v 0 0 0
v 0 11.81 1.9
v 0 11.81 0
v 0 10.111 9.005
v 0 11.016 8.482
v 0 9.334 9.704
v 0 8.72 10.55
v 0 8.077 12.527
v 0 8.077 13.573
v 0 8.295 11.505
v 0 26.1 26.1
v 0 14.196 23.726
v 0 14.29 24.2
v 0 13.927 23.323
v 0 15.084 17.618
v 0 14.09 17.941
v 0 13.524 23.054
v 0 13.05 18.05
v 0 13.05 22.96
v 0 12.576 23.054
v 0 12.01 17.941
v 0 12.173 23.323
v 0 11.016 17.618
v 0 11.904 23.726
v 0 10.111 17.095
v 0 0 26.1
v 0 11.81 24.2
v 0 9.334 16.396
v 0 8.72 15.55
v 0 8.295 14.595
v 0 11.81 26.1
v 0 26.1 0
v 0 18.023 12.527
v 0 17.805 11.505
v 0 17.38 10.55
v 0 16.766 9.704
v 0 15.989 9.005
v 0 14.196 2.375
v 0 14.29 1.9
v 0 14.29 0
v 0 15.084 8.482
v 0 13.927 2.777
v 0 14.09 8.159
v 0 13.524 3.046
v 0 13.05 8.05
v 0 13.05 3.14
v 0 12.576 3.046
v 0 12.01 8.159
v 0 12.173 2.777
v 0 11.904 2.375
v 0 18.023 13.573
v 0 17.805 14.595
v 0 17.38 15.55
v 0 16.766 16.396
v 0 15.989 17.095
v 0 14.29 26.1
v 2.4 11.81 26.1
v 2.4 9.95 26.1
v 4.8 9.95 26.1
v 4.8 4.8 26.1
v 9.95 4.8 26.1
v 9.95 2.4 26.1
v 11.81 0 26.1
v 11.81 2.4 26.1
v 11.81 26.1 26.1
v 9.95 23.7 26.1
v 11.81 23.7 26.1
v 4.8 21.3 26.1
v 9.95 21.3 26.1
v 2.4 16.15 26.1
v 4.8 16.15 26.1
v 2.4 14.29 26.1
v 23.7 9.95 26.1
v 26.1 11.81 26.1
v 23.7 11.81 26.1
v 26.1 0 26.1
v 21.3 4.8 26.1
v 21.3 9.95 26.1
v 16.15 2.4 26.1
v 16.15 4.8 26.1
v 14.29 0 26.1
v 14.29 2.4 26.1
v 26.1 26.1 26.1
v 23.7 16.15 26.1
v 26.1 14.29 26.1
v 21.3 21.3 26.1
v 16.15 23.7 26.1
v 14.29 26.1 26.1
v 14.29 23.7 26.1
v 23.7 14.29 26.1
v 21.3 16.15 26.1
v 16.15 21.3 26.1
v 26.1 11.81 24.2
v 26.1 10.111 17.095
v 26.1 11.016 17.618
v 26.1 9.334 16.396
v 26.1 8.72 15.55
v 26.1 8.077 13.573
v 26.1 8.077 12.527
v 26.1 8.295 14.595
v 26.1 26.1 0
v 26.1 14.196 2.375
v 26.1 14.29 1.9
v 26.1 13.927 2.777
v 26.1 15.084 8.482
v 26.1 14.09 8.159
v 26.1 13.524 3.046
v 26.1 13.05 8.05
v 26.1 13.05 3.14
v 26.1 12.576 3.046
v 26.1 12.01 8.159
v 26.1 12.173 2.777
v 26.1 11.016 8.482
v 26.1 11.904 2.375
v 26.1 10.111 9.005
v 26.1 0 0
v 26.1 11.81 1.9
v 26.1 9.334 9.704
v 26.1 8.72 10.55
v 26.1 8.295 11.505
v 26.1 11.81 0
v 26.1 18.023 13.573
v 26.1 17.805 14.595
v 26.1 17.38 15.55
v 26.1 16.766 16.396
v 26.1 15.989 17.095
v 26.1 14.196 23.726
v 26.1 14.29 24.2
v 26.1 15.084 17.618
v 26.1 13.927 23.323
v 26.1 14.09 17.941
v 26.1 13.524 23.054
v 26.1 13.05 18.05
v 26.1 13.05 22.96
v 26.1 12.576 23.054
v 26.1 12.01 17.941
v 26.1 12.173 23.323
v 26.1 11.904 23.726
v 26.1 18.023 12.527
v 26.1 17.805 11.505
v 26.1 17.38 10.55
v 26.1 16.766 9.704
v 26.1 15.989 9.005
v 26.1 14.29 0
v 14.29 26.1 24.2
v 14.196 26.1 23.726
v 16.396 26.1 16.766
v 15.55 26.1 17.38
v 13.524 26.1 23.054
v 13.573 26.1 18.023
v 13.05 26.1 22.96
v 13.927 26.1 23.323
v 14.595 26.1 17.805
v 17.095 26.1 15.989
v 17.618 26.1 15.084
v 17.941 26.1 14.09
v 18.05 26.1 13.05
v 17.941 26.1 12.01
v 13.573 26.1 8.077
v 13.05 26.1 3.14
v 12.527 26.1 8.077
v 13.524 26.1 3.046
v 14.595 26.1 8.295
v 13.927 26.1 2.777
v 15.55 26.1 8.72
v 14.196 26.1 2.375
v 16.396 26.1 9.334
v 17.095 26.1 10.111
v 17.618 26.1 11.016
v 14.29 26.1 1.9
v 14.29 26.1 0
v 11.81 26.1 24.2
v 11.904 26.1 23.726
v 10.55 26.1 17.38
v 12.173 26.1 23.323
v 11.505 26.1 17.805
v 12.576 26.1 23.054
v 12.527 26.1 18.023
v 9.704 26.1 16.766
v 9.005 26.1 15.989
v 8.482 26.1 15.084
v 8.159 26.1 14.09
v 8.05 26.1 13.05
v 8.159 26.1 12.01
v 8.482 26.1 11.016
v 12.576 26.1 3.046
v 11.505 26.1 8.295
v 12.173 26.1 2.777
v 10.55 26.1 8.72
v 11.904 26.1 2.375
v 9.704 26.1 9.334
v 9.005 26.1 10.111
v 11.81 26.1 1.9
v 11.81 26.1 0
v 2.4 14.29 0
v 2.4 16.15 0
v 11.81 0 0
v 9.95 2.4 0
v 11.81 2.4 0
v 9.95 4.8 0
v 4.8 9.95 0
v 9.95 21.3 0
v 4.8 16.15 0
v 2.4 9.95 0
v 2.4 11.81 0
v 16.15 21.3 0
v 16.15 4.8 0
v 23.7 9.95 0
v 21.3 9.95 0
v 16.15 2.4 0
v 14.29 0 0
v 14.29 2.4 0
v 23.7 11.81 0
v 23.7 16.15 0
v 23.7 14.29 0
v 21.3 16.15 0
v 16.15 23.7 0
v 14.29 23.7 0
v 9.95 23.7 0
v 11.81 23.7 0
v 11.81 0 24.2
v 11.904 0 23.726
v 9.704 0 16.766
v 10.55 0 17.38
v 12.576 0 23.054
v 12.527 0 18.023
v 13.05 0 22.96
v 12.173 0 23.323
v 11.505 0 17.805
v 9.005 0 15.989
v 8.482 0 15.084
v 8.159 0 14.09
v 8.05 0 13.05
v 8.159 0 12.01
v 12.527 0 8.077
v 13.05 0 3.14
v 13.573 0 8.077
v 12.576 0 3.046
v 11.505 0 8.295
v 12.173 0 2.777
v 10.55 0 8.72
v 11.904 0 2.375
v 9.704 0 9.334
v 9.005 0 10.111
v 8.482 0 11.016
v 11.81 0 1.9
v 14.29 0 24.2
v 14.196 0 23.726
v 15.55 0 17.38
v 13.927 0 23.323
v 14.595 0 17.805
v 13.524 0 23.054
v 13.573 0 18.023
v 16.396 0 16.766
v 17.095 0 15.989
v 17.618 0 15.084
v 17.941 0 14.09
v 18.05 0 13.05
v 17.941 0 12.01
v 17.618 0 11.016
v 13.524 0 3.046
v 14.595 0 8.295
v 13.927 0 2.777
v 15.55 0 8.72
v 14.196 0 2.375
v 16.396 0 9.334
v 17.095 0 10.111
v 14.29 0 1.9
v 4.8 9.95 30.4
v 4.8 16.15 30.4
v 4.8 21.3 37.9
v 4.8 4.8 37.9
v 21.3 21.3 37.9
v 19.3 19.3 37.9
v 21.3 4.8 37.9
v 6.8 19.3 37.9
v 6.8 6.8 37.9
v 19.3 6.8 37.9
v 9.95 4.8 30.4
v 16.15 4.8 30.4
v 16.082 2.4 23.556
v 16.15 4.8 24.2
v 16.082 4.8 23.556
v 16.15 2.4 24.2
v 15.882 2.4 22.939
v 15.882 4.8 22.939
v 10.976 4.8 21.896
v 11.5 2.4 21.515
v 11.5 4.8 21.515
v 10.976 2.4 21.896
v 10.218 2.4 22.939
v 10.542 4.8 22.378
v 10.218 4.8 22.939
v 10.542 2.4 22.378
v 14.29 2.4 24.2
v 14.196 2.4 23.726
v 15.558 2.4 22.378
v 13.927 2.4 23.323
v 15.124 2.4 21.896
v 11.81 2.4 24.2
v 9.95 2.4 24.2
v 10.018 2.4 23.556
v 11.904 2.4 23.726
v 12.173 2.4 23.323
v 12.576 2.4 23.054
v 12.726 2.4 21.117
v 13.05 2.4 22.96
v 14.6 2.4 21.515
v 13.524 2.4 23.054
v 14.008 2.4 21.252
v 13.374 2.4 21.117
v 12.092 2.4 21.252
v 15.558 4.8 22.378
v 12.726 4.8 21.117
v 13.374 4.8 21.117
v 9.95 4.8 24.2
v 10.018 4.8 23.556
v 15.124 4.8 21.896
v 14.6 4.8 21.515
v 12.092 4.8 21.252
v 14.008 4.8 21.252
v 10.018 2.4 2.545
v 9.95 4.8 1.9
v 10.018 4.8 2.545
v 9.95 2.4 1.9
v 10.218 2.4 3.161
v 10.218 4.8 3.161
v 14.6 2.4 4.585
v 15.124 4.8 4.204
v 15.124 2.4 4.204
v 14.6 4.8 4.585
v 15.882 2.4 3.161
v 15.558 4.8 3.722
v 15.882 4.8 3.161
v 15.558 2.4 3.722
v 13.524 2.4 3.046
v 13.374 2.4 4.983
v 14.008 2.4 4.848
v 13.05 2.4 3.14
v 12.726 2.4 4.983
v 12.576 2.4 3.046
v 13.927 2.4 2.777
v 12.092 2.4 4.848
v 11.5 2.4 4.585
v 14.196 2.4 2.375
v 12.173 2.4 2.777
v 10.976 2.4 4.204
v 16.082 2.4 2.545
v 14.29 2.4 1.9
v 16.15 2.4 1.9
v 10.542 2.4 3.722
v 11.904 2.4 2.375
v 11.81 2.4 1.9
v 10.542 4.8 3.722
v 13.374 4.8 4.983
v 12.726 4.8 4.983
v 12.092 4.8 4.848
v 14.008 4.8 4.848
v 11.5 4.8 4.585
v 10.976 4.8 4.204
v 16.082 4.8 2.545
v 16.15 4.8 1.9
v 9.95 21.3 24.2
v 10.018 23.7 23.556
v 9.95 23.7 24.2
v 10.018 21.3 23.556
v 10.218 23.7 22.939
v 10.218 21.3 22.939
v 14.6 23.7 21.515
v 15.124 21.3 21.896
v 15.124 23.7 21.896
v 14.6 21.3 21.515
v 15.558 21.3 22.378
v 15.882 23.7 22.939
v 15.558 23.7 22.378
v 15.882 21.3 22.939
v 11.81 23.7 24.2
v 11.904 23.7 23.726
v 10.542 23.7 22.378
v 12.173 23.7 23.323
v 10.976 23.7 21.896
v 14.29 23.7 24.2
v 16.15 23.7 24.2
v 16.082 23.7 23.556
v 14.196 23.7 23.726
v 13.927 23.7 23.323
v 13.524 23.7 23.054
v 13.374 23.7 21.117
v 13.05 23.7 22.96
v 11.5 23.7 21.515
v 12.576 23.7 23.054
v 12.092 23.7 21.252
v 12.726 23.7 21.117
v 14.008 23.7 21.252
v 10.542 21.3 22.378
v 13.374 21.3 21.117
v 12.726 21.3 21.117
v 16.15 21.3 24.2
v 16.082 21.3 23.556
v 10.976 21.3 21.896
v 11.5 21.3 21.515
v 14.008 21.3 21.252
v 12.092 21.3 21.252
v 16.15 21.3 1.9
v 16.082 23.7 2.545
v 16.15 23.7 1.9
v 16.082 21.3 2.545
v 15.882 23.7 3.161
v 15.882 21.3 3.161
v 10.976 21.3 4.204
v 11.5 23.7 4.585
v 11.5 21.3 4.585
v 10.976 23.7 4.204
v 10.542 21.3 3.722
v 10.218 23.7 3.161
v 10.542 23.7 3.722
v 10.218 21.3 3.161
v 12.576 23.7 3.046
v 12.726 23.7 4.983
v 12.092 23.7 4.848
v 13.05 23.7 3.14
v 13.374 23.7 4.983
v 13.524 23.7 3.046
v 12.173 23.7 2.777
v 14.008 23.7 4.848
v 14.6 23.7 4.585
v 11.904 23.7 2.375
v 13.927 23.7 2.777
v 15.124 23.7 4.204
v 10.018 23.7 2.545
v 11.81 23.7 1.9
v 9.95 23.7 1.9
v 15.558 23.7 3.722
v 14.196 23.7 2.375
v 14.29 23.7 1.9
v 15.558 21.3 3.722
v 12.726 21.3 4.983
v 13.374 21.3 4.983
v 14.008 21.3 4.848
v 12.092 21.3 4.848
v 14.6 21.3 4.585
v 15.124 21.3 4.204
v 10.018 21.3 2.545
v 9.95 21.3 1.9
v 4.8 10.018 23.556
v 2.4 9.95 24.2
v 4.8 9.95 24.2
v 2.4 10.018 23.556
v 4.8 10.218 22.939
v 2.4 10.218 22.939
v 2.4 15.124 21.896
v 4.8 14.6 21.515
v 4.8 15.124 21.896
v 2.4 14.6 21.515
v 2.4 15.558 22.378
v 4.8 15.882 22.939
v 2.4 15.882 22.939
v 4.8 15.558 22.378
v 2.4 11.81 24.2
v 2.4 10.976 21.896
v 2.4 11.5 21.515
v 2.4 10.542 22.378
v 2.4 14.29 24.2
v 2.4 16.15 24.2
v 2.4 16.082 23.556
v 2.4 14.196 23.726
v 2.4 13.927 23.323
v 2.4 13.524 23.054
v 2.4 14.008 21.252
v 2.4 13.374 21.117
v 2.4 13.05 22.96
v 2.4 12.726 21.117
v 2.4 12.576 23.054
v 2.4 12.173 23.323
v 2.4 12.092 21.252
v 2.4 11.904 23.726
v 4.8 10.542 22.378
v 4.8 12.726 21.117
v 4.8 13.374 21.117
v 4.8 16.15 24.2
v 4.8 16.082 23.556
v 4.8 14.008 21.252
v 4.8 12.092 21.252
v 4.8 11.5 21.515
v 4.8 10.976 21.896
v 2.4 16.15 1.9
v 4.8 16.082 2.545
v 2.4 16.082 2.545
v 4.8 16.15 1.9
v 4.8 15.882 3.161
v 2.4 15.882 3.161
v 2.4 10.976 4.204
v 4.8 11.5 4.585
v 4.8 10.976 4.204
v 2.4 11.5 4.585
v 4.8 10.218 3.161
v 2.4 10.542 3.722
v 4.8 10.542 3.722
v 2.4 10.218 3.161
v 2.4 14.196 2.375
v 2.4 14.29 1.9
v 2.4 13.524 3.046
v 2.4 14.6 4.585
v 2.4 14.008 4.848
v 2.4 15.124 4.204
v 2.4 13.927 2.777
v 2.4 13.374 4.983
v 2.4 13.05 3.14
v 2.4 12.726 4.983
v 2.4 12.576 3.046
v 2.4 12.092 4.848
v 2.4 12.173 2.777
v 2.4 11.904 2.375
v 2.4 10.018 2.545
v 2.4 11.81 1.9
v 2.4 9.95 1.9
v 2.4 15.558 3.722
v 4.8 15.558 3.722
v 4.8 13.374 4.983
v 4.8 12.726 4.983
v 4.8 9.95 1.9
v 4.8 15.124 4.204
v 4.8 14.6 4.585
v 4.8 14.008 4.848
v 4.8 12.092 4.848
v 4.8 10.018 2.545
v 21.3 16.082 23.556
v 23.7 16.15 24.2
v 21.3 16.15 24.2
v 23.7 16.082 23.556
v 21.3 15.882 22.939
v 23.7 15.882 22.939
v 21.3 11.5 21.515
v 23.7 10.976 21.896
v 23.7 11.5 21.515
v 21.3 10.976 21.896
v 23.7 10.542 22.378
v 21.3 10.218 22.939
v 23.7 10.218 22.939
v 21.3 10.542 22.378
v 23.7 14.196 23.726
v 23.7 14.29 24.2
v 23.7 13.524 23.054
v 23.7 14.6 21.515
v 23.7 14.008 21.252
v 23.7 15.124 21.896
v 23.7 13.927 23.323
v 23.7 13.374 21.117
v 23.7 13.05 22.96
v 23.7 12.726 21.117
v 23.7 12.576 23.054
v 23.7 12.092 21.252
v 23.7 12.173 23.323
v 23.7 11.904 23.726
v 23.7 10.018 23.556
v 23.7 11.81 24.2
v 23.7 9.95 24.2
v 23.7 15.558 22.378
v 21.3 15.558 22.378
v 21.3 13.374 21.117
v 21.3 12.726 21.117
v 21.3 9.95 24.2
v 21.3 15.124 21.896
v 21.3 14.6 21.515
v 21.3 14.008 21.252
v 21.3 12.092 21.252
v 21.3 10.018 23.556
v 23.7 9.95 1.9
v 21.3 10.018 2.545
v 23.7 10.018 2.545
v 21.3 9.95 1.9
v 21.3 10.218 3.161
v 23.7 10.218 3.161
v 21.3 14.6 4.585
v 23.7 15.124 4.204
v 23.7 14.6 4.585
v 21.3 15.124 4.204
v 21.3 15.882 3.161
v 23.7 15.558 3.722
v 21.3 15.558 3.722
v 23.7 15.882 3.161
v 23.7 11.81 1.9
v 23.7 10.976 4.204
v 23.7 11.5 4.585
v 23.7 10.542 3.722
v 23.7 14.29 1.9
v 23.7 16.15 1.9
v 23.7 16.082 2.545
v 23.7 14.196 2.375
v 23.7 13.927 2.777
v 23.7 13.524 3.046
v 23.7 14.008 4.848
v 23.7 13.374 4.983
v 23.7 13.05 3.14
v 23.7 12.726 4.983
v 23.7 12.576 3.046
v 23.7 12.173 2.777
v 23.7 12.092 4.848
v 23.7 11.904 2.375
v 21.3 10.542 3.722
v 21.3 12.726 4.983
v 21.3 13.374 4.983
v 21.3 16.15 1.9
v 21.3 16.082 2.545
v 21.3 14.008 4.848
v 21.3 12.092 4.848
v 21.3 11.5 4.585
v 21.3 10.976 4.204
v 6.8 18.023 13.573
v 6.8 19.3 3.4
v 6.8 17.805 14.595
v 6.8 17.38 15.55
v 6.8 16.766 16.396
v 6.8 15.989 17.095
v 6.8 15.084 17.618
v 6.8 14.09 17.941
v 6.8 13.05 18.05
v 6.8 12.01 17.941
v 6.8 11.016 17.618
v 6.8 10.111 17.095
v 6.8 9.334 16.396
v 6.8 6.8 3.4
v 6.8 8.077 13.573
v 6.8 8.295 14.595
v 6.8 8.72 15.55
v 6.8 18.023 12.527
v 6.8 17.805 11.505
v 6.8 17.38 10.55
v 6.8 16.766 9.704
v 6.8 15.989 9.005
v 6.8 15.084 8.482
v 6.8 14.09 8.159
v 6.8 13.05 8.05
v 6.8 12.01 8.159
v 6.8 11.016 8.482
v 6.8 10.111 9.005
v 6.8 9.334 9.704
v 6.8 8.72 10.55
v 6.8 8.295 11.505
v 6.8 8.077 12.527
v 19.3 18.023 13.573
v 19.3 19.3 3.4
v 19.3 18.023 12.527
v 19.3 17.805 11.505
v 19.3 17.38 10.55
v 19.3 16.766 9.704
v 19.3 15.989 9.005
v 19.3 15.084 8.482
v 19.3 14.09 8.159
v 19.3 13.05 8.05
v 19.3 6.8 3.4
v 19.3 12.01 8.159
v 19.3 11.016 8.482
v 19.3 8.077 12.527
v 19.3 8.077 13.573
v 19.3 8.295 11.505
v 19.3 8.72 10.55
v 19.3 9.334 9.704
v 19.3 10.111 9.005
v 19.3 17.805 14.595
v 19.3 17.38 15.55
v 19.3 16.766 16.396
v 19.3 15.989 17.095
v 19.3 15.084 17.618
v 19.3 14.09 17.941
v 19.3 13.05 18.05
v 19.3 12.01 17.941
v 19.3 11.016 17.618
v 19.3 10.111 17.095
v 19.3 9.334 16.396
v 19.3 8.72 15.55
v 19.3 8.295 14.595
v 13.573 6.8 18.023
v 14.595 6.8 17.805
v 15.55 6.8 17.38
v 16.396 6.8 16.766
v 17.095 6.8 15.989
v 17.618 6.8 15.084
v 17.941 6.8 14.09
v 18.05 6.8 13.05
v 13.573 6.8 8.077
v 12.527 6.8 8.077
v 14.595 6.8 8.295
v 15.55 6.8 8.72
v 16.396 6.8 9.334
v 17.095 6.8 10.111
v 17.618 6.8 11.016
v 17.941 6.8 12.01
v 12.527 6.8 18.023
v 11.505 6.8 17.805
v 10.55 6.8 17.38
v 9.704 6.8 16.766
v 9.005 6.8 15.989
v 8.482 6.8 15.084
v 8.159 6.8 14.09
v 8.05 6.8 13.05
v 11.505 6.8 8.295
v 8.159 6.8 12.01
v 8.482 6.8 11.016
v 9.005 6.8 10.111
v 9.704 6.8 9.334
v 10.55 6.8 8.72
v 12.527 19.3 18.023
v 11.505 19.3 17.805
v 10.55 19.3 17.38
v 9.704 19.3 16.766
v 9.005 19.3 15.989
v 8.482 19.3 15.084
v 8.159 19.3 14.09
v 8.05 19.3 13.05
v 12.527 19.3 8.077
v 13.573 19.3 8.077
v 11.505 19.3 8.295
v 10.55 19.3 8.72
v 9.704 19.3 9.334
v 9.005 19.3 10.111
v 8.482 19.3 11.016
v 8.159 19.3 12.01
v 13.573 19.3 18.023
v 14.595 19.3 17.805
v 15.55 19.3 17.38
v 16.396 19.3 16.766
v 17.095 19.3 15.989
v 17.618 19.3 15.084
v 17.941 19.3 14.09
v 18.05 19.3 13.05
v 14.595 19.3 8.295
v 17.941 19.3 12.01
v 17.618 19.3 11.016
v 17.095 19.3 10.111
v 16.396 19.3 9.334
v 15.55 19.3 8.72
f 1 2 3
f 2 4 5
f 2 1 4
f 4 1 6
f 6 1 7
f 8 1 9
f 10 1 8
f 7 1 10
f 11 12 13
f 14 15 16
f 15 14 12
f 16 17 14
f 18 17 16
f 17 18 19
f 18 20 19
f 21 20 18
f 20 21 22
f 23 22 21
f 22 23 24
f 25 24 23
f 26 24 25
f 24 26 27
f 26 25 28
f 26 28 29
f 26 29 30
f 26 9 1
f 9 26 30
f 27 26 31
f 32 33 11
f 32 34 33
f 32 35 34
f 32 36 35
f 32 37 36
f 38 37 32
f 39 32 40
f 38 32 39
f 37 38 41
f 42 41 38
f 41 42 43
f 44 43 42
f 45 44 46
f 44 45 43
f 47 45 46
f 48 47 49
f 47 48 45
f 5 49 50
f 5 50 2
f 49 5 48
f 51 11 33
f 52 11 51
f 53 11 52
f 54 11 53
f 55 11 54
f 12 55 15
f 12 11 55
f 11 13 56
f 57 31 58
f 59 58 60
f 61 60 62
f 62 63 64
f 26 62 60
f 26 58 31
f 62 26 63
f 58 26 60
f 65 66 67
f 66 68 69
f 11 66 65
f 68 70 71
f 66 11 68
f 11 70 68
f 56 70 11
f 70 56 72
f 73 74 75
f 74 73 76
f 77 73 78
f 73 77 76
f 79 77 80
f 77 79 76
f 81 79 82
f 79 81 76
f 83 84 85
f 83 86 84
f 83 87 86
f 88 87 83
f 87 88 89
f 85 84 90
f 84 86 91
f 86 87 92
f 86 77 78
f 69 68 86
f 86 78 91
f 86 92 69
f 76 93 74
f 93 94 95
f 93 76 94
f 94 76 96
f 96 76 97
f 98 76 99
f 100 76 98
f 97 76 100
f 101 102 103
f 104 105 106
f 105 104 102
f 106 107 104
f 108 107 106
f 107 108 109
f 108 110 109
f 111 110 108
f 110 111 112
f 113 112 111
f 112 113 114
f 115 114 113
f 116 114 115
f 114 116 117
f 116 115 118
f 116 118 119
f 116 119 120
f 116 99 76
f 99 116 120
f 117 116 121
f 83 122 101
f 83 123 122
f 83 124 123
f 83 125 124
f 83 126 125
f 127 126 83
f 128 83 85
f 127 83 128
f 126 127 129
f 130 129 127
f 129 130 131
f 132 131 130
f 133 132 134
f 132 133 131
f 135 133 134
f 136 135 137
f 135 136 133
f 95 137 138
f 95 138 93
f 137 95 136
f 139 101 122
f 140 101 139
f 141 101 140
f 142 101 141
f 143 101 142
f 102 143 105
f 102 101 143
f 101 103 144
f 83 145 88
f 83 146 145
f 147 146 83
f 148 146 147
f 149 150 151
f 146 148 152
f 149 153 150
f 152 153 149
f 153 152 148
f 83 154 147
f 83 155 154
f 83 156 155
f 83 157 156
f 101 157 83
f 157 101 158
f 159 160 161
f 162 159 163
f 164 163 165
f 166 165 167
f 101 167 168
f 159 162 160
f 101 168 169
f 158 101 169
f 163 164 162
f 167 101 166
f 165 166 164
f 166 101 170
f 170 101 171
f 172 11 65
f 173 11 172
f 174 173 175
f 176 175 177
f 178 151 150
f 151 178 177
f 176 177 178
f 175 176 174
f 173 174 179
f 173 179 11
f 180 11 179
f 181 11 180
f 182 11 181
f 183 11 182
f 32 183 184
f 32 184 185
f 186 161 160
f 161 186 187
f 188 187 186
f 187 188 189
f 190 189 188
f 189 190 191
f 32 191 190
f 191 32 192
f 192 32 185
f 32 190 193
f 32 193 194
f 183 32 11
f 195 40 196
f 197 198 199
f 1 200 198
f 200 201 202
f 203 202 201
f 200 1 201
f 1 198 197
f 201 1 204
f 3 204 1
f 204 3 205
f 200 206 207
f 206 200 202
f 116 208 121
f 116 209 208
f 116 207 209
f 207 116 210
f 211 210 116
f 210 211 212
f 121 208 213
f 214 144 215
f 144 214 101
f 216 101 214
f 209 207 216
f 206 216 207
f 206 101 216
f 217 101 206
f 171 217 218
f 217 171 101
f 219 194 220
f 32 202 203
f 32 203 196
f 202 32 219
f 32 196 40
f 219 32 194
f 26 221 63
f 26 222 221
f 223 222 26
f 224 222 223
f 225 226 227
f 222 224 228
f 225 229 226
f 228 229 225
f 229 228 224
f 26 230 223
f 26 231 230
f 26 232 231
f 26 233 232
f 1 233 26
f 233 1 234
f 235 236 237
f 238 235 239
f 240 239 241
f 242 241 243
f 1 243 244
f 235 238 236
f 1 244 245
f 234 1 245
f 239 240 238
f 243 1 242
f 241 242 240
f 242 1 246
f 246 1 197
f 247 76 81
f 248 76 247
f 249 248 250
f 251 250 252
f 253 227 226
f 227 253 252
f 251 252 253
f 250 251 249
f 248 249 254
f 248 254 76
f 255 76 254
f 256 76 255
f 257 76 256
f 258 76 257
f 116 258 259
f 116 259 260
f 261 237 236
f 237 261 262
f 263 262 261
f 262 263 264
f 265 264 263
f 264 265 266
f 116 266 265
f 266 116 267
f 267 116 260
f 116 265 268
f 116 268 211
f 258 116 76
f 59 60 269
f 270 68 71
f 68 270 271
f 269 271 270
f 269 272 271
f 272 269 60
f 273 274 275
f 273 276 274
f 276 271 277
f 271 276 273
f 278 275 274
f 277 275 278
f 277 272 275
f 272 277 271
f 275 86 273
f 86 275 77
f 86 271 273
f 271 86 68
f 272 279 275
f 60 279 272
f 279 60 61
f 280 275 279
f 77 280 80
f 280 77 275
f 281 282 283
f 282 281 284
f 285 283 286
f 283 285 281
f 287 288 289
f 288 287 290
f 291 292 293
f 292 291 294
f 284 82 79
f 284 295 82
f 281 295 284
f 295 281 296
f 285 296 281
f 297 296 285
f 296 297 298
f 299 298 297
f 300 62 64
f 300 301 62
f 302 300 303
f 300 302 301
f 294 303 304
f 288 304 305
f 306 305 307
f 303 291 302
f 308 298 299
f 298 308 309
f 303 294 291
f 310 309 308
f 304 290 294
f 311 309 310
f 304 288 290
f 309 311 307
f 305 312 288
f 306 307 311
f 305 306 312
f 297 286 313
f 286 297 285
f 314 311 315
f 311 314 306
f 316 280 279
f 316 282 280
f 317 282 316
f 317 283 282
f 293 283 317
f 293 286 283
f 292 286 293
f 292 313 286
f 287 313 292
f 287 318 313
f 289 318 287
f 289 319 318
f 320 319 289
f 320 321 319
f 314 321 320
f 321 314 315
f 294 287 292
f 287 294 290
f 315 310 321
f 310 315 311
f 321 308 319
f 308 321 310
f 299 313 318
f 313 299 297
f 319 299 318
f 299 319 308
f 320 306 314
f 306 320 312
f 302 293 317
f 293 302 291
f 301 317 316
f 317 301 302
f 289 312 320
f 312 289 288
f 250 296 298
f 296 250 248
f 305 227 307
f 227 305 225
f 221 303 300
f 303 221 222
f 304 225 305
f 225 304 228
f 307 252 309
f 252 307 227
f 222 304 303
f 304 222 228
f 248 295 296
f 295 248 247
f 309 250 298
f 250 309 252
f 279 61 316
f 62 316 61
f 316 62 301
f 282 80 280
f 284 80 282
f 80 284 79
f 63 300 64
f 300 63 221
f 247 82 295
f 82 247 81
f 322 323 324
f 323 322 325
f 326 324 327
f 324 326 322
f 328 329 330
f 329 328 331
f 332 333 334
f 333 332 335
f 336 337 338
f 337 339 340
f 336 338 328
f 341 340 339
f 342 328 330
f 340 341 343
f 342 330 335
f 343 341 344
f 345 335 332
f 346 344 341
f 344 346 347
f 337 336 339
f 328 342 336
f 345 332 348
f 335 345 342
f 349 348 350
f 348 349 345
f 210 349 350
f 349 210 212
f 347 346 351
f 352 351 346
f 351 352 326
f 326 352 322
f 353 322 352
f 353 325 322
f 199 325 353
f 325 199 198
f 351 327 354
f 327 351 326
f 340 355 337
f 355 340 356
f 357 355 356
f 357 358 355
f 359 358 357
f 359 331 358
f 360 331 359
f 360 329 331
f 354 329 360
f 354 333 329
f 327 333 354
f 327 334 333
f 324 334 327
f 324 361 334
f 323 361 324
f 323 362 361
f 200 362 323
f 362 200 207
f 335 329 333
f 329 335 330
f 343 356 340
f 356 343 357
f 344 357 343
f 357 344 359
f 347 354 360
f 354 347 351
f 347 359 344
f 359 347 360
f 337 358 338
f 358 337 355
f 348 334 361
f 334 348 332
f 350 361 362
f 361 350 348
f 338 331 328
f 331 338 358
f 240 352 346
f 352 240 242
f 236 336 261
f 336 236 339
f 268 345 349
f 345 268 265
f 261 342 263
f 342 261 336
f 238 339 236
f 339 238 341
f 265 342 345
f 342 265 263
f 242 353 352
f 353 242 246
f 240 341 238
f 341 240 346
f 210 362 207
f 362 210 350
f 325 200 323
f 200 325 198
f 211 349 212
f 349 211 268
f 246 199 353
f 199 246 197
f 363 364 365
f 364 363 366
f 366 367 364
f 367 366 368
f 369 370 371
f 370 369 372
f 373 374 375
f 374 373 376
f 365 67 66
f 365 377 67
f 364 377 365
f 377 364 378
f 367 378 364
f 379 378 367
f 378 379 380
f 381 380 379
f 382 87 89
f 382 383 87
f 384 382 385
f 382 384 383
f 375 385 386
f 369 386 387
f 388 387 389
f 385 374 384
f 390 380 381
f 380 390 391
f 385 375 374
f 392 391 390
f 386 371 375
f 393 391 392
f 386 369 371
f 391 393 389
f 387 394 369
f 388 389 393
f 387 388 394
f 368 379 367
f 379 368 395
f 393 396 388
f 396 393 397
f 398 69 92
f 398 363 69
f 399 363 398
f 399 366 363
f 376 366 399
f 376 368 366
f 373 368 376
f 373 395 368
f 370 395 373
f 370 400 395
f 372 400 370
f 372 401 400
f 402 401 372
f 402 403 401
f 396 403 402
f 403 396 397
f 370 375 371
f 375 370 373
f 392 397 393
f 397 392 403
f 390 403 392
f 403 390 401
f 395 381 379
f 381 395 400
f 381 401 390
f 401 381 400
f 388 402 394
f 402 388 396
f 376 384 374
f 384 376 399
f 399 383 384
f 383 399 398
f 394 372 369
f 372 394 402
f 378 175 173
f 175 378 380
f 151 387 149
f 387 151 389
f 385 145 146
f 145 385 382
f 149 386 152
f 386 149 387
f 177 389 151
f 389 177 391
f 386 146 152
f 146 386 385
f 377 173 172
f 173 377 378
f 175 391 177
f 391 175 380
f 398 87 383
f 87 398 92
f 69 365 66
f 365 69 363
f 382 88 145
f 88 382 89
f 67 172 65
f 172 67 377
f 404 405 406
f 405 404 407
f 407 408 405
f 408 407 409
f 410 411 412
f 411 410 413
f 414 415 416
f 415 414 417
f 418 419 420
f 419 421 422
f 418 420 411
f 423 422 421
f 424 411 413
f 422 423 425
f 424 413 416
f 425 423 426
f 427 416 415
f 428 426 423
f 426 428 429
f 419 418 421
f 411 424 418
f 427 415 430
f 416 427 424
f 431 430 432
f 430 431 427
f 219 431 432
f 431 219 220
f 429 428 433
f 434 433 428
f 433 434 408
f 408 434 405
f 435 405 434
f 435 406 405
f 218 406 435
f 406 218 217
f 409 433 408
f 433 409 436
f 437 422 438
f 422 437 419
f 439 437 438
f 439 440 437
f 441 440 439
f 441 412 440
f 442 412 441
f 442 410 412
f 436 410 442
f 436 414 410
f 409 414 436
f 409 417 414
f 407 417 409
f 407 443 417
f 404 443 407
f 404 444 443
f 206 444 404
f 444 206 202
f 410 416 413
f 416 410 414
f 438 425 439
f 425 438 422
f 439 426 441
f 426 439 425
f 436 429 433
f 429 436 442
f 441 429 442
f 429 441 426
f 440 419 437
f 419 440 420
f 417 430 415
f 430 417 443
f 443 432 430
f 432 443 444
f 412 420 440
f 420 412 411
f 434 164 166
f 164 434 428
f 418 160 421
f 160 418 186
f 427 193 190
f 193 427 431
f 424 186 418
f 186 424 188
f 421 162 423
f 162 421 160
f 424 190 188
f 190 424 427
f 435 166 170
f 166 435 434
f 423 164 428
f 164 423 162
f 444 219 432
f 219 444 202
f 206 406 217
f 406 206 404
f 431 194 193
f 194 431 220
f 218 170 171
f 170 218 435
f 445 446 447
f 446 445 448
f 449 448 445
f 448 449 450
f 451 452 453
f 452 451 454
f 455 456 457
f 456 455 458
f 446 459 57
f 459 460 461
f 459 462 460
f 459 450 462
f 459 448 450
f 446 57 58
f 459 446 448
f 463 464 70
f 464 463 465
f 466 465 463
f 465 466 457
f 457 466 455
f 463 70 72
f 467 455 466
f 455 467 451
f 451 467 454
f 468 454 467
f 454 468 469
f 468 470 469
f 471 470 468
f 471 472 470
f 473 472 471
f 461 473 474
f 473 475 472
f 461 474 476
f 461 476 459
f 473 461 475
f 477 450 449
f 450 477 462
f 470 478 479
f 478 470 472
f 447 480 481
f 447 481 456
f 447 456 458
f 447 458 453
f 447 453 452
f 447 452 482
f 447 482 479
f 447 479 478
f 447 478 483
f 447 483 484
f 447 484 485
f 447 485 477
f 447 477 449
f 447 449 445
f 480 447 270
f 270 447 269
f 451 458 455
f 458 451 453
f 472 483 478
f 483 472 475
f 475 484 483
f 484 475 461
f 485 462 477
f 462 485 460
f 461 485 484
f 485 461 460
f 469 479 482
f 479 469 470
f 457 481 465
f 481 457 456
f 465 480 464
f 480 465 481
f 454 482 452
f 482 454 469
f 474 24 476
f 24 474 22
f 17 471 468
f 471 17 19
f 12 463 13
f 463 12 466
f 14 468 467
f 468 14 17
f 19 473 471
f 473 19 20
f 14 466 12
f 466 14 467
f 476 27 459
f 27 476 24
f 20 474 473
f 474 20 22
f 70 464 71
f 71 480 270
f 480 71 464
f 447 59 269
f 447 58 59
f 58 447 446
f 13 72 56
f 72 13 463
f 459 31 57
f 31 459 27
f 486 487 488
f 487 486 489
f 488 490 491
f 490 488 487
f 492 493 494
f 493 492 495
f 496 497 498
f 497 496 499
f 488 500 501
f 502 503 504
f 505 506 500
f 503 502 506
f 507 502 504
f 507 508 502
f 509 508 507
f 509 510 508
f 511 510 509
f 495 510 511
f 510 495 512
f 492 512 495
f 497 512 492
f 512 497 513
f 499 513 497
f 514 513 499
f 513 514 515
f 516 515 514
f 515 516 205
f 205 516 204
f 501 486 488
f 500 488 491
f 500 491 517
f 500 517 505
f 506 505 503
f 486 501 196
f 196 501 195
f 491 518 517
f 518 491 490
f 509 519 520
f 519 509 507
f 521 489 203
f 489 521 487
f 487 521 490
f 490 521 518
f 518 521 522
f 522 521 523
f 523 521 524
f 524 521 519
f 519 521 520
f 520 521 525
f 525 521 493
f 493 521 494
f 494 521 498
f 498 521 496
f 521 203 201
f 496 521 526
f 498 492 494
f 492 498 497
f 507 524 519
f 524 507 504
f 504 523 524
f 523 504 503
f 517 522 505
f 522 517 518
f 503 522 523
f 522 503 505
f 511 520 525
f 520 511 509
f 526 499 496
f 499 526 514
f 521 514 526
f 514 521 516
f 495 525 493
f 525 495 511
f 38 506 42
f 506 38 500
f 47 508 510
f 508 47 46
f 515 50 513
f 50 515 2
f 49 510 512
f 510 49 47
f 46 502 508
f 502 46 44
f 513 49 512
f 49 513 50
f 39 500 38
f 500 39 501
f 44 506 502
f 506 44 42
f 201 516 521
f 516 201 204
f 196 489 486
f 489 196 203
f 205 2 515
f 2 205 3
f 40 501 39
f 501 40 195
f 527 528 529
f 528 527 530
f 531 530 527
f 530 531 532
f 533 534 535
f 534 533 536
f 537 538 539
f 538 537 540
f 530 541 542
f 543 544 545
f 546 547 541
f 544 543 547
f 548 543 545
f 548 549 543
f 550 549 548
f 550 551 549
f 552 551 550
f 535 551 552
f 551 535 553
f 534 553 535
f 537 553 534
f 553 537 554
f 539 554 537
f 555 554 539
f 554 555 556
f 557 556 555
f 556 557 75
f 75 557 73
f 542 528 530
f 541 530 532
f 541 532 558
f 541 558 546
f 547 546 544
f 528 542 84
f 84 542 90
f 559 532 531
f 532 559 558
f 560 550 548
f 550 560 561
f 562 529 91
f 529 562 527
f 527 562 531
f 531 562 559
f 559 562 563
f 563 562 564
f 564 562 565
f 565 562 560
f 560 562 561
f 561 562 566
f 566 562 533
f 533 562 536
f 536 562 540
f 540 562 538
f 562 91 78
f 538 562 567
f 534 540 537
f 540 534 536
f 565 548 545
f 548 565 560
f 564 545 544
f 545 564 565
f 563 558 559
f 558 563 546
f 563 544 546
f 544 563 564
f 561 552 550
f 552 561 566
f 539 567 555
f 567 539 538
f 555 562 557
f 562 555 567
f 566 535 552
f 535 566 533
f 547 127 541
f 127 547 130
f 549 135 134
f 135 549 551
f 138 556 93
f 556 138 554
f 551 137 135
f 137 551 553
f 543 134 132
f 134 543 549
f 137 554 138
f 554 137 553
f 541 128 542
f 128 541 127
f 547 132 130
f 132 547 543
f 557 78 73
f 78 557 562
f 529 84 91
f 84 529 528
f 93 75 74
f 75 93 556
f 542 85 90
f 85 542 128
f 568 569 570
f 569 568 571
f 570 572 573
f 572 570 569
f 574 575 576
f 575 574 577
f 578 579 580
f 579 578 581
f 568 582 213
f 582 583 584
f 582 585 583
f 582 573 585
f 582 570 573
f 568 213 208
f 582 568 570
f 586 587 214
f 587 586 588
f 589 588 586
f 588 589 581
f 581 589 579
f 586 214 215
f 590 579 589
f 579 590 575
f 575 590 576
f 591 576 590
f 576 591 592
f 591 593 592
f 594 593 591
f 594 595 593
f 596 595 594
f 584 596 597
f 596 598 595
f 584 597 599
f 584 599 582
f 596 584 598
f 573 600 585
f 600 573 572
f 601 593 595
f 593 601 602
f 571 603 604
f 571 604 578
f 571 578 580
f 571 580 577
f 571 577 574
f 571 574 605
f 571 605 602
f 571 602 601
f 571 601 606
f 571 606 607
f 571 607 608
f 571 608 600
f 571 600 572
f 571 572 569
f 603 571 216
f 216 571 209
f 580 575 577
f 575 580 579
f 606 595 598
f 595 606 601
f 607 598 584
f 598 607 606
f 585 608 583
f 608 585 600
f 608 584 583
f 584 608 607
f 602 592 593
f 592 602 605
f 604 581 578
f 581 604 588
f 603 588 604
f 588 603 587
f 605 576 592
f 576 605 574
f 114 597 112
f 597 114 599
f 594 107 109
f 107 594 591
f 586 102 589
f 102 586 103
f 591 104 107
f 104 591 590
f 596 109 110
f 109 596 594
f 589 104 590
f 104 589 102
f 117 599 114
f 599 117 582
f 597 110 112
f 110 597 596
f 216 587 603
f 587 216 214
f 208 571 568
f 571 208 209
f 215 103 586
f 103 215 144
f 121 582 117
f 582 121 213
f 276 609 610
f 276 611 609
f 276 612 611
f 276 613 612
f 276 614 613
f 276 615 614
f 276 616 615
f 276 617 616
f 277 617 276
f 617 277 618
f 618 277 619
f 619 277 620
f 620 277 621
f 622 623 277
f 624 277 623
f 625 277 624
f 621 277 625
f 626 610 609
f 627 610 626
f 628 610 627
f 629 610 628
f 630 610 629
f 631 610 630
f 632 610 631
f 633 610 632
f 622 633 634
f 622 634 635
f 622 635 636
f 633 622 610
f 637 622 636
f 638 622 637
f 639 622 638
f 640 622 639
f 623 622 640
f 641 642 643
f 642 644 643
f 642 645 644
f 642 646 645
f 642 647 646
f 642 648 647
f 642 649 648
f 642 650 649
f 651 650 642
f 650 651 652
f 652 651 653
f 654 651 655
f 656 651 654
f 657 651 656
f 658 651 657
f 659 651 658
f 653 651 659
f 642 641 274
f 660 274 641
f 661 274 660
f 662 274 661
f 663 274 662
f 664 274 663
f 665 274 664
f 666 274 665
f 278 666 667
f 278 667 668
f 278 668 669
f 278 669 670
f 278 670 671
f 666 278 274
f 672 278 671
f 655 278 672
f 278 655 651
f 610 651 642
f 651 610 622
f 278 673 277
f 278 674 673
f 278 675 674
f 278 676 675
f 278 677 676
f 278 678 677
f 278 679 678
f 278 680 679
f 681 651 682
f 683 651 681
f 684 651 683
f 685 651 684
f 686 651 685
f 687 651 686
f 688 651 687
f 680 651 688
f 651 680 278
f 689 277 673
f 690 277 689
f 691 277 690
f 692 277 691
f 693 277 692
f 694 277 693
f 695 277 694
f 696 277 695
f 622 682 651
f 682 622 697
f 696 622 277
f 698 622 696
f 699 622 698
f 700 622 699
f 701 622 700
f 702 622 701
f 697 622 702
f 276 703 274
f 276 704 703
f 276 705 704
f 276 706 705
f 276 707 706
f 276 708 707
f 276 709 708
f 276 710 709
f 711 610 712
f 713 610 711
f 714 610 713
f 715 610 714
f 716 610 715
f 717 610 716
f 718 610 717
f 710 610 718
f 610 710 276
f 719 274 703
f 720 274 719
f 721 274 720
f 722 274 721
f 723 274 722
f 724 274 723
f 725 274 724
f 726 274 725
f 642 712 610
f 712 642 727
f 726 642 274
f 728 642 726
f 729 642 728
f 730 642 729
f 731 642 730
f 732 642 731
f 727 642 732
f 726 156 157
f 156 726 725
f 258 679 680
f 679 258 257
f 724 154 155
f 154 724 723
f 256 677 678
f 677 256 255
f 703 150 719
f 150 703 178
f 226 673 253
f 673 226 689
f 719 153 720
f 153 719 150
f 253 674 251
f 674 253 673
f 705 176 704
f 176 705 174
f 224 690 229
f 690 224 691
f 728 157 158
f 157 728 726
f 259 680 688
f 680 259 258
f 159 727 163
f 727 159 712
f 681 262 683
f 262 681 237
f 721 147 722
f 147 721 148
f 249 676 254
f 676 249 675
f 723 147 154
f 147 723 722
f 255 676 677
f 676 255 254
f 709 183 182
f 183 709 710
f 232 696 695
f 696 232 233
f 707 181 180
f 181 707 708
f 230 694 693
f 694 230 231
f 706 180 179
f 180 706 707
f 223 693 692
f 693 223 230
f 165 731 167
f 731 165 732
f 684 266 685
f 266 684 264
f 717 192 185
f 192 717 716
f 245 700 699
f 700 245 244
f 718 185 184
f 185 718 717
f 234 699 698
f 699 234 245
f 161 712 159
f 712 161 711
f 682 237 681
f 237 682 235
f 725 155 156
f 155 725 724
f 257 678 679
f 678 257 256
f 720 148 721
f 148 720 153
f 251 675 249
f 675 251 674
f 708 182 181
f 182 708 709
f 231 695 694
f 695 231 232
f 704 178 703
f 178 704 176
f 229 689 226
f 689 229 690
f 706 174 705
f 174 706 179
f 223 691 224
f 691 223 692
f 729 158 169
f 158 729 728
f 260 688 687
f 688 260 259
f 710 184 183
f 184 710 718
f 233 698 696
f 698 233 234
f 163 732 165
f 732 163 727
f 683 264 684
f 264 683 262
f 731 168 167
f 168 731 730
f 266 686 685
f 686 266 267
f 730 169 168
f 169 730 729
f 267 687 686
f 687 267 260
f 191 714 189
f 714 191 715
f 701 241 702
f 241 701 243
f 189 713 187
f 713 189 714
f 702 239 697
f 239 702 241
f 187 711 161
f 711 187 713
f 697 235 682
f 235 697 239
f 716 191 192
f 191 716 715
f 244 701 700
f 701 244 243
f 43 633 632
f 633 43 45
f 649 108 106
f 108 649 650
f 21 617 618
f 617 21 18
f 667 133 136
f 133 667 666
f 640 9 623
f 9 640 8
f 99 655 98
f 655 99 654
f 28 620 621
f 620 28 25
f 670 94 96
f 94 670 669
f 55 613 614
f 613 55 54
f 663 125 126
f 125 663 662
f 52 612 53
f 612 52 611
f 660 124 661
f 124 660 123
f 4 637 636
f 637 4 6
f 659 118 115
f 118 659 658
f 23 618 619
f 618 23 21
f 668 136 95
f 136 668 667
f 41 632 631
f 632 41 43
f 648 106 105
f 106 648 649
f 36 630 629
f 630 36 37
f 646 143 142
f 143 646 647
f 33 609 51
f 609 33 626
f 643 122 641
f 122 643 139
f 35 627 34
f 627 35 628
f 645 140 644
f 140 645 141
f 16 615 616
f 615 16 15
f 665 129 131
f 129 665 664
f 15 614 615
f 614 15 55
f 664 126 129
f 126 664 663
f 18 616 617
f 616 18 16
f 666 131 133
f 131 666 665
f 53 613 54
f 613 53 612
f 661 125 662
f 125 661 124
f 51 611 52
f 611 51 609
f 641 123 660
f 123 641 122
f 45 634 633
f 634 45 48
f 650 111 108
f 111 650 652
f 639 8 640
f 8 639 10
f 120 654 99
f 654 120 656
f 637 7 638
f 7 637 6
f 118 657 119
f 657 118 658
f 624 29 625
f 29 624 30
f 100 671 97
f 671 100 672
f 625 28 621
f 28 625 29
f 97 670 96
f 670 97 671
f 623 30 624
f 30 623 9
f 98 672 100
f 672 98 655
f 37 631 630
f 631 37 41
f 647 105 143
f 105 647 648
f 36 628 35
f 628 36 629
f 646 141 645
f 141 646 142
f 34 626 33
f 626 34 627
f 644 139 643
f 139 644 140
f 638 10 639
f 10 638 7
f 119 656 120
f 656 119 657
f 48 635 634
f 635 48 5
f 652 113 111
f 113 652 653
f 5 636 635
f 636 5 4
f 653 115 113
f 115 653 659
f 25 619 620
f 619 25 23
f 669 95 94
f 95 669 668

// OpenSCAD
screw_head_width = 6.2;
screw_head_height= 2.4;
screw_shaft_width = 2.48;

cuvette_width = 12.5;

collar_width= 2.0;
wall_width = collar_width + screw_head_height*2;

collar_height = 5;
hole_width = 10;
height = cuvette_width + 2*wall_width;
width = height;
echo("Core height: ",height);

$fs= 0.5;

module screw_slot(){
    translate([0,2*screw_head_height,screw_head_width/2])
    rotate([90,0,0])
    union(){
        cylinder(d=screw_head_width, h=screw_head_height);
        cylinder(d=screw_shaft_width, h=2*screw_head_height+2);
        translate([-screw_head_width/2, 0, 0])
            cube([screw_head_width, screw_head_width, screw_head_height]);
        translate([-screw_shaft_width/2, 0, 0])
            cube([screw_shaft_width, screw_head_width, 2*screw_head_height+2]);
    }
}

module turbidimeter_center(){
    difference(){
        union(){
            cube([cuvette_width + 2*wall_width,cuvette_width + 2*wall_width,height]);
            translate ([wall_width-collar_width, wall_width-collar_width, wall_width]) 
                cube([cuvette_width+2*collar_width,cuvette_width+2*collar_width, height+collar_height]);
        }
        translate ([wall_width, wall_width, wall_width/2]) 
            cube([cuvette_width,cuvette_width, height+ collar_height+2+ wall_width/2]);
        translate([cuvette_width/2 + wall_width,0,height/2]) rotate([90,0,0]) 
            cylinder(d=hole_width, h = 100, center=true);
        
        translate([0,cuvette_width/2 + wall_width,height/2]) rotate([0,90,0]) 
            cylinder(d=hole_width, h = 100, center=true);
        
        
        
        
        translate([width/2,0,height-hole_width/2])
            rotate([0,0,0])
                screw_slot();
        
        
        translate([width/2,0,hole_width/2])
            rotate([0,180,0])
                screw_slot();
        
        
        translate([width/2,width,height-hole_width/2])
            rotate([0,0,180])
                screw_slot();
        
        translate([width/2,width,hole_width/2])
            rotate([0,180,180])
                screw_slot();
                
                
        translate([0,width/2,height-hole_width/2])
            rotate([0,0,-90])
                screw_slot();   
            
        translate([0,width/2,hole_width/2])
            rotate([0,180,-90])
                screw_slot();
           
        translate([width,width/2,height-hole_width/2])
            rotate([0,0,90])
                screw_slot();   
            
        translate([width,width/2,hole_width/2])
            rotate([0,180,90])
                screw_slot();
        
        
    }
    
}


turbidimeter_center();
